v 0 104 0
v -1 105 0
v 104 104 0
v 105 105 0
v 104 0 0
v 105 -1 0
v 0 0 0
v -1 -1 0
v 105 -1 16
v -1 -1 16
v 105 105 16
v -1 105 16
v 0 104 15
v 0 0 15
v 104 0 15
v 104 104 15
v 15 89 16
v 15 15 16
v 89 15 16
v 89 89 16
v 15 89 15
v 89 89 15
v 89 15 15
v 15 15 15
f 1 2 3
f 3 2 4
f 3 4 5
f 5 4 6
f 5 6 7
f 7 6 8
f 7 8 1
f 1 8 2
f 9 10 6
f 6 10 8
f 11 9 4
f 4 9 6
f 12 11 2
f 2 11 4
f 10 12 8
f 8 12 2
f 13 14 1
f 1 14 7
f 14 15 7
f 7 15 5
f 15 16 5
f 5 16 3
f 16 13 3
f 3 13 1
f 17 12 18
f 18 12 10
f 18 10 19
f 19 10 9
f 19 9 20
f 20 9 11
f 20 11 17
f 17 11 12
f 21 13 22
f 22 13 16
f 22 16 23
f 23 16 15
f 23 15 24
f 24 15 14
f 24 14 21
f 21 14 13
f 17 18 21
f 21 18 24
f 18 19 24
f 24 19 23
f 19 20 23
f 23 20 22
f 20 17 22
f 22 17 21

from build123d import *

# Parameters (mm, degrees)
SKETCH1_W           = 106
SKETCH1_H           = 106
SKETCH1_W_2         = 104
SKETCH1_H_2         = 104
BOSS_EXTRUDE1_DEPTH = 15
SKETCH2_W           = 106
SKETCH2_H           = 106
SKETCH2_W_2         = 74
SKETCH2_H_2         = 74
BOSS_EXTRUDE2_DEPTH = 1


with BuildPart() as part:
    # Sketch1 → Boss-Extrude1 (new body)
    with BuildSketch(Plane.XY):
        with Locations((52, 52)):
            Rectangle(SKETCH1_W, SKETCH1_H)
        with Locations((52, 52)):
            Rectangle(SKETCH1_W_2, SKETCH1_H_2, mode=Mode.SUBTRACT)
    extrude(amount=BOSS_EXTRUDE1_DEPTH)

    # Sketch2 → Boss-Extrude2 (add)
    with BuildSketch(Plane.XY.offset(15)):
        with Locations((52, 52)):
            Rectangle(SKETCH2_W, SKETCH2_H)
        with Locations((52, 52)):
            Rectangle(SKETCH2_W_2, SKETCH2_H_2, mode=Mode.SUBTRACT)
    extrude(amount=BOSS_EXTRUDE2_DEPTH)


solid = part.part
